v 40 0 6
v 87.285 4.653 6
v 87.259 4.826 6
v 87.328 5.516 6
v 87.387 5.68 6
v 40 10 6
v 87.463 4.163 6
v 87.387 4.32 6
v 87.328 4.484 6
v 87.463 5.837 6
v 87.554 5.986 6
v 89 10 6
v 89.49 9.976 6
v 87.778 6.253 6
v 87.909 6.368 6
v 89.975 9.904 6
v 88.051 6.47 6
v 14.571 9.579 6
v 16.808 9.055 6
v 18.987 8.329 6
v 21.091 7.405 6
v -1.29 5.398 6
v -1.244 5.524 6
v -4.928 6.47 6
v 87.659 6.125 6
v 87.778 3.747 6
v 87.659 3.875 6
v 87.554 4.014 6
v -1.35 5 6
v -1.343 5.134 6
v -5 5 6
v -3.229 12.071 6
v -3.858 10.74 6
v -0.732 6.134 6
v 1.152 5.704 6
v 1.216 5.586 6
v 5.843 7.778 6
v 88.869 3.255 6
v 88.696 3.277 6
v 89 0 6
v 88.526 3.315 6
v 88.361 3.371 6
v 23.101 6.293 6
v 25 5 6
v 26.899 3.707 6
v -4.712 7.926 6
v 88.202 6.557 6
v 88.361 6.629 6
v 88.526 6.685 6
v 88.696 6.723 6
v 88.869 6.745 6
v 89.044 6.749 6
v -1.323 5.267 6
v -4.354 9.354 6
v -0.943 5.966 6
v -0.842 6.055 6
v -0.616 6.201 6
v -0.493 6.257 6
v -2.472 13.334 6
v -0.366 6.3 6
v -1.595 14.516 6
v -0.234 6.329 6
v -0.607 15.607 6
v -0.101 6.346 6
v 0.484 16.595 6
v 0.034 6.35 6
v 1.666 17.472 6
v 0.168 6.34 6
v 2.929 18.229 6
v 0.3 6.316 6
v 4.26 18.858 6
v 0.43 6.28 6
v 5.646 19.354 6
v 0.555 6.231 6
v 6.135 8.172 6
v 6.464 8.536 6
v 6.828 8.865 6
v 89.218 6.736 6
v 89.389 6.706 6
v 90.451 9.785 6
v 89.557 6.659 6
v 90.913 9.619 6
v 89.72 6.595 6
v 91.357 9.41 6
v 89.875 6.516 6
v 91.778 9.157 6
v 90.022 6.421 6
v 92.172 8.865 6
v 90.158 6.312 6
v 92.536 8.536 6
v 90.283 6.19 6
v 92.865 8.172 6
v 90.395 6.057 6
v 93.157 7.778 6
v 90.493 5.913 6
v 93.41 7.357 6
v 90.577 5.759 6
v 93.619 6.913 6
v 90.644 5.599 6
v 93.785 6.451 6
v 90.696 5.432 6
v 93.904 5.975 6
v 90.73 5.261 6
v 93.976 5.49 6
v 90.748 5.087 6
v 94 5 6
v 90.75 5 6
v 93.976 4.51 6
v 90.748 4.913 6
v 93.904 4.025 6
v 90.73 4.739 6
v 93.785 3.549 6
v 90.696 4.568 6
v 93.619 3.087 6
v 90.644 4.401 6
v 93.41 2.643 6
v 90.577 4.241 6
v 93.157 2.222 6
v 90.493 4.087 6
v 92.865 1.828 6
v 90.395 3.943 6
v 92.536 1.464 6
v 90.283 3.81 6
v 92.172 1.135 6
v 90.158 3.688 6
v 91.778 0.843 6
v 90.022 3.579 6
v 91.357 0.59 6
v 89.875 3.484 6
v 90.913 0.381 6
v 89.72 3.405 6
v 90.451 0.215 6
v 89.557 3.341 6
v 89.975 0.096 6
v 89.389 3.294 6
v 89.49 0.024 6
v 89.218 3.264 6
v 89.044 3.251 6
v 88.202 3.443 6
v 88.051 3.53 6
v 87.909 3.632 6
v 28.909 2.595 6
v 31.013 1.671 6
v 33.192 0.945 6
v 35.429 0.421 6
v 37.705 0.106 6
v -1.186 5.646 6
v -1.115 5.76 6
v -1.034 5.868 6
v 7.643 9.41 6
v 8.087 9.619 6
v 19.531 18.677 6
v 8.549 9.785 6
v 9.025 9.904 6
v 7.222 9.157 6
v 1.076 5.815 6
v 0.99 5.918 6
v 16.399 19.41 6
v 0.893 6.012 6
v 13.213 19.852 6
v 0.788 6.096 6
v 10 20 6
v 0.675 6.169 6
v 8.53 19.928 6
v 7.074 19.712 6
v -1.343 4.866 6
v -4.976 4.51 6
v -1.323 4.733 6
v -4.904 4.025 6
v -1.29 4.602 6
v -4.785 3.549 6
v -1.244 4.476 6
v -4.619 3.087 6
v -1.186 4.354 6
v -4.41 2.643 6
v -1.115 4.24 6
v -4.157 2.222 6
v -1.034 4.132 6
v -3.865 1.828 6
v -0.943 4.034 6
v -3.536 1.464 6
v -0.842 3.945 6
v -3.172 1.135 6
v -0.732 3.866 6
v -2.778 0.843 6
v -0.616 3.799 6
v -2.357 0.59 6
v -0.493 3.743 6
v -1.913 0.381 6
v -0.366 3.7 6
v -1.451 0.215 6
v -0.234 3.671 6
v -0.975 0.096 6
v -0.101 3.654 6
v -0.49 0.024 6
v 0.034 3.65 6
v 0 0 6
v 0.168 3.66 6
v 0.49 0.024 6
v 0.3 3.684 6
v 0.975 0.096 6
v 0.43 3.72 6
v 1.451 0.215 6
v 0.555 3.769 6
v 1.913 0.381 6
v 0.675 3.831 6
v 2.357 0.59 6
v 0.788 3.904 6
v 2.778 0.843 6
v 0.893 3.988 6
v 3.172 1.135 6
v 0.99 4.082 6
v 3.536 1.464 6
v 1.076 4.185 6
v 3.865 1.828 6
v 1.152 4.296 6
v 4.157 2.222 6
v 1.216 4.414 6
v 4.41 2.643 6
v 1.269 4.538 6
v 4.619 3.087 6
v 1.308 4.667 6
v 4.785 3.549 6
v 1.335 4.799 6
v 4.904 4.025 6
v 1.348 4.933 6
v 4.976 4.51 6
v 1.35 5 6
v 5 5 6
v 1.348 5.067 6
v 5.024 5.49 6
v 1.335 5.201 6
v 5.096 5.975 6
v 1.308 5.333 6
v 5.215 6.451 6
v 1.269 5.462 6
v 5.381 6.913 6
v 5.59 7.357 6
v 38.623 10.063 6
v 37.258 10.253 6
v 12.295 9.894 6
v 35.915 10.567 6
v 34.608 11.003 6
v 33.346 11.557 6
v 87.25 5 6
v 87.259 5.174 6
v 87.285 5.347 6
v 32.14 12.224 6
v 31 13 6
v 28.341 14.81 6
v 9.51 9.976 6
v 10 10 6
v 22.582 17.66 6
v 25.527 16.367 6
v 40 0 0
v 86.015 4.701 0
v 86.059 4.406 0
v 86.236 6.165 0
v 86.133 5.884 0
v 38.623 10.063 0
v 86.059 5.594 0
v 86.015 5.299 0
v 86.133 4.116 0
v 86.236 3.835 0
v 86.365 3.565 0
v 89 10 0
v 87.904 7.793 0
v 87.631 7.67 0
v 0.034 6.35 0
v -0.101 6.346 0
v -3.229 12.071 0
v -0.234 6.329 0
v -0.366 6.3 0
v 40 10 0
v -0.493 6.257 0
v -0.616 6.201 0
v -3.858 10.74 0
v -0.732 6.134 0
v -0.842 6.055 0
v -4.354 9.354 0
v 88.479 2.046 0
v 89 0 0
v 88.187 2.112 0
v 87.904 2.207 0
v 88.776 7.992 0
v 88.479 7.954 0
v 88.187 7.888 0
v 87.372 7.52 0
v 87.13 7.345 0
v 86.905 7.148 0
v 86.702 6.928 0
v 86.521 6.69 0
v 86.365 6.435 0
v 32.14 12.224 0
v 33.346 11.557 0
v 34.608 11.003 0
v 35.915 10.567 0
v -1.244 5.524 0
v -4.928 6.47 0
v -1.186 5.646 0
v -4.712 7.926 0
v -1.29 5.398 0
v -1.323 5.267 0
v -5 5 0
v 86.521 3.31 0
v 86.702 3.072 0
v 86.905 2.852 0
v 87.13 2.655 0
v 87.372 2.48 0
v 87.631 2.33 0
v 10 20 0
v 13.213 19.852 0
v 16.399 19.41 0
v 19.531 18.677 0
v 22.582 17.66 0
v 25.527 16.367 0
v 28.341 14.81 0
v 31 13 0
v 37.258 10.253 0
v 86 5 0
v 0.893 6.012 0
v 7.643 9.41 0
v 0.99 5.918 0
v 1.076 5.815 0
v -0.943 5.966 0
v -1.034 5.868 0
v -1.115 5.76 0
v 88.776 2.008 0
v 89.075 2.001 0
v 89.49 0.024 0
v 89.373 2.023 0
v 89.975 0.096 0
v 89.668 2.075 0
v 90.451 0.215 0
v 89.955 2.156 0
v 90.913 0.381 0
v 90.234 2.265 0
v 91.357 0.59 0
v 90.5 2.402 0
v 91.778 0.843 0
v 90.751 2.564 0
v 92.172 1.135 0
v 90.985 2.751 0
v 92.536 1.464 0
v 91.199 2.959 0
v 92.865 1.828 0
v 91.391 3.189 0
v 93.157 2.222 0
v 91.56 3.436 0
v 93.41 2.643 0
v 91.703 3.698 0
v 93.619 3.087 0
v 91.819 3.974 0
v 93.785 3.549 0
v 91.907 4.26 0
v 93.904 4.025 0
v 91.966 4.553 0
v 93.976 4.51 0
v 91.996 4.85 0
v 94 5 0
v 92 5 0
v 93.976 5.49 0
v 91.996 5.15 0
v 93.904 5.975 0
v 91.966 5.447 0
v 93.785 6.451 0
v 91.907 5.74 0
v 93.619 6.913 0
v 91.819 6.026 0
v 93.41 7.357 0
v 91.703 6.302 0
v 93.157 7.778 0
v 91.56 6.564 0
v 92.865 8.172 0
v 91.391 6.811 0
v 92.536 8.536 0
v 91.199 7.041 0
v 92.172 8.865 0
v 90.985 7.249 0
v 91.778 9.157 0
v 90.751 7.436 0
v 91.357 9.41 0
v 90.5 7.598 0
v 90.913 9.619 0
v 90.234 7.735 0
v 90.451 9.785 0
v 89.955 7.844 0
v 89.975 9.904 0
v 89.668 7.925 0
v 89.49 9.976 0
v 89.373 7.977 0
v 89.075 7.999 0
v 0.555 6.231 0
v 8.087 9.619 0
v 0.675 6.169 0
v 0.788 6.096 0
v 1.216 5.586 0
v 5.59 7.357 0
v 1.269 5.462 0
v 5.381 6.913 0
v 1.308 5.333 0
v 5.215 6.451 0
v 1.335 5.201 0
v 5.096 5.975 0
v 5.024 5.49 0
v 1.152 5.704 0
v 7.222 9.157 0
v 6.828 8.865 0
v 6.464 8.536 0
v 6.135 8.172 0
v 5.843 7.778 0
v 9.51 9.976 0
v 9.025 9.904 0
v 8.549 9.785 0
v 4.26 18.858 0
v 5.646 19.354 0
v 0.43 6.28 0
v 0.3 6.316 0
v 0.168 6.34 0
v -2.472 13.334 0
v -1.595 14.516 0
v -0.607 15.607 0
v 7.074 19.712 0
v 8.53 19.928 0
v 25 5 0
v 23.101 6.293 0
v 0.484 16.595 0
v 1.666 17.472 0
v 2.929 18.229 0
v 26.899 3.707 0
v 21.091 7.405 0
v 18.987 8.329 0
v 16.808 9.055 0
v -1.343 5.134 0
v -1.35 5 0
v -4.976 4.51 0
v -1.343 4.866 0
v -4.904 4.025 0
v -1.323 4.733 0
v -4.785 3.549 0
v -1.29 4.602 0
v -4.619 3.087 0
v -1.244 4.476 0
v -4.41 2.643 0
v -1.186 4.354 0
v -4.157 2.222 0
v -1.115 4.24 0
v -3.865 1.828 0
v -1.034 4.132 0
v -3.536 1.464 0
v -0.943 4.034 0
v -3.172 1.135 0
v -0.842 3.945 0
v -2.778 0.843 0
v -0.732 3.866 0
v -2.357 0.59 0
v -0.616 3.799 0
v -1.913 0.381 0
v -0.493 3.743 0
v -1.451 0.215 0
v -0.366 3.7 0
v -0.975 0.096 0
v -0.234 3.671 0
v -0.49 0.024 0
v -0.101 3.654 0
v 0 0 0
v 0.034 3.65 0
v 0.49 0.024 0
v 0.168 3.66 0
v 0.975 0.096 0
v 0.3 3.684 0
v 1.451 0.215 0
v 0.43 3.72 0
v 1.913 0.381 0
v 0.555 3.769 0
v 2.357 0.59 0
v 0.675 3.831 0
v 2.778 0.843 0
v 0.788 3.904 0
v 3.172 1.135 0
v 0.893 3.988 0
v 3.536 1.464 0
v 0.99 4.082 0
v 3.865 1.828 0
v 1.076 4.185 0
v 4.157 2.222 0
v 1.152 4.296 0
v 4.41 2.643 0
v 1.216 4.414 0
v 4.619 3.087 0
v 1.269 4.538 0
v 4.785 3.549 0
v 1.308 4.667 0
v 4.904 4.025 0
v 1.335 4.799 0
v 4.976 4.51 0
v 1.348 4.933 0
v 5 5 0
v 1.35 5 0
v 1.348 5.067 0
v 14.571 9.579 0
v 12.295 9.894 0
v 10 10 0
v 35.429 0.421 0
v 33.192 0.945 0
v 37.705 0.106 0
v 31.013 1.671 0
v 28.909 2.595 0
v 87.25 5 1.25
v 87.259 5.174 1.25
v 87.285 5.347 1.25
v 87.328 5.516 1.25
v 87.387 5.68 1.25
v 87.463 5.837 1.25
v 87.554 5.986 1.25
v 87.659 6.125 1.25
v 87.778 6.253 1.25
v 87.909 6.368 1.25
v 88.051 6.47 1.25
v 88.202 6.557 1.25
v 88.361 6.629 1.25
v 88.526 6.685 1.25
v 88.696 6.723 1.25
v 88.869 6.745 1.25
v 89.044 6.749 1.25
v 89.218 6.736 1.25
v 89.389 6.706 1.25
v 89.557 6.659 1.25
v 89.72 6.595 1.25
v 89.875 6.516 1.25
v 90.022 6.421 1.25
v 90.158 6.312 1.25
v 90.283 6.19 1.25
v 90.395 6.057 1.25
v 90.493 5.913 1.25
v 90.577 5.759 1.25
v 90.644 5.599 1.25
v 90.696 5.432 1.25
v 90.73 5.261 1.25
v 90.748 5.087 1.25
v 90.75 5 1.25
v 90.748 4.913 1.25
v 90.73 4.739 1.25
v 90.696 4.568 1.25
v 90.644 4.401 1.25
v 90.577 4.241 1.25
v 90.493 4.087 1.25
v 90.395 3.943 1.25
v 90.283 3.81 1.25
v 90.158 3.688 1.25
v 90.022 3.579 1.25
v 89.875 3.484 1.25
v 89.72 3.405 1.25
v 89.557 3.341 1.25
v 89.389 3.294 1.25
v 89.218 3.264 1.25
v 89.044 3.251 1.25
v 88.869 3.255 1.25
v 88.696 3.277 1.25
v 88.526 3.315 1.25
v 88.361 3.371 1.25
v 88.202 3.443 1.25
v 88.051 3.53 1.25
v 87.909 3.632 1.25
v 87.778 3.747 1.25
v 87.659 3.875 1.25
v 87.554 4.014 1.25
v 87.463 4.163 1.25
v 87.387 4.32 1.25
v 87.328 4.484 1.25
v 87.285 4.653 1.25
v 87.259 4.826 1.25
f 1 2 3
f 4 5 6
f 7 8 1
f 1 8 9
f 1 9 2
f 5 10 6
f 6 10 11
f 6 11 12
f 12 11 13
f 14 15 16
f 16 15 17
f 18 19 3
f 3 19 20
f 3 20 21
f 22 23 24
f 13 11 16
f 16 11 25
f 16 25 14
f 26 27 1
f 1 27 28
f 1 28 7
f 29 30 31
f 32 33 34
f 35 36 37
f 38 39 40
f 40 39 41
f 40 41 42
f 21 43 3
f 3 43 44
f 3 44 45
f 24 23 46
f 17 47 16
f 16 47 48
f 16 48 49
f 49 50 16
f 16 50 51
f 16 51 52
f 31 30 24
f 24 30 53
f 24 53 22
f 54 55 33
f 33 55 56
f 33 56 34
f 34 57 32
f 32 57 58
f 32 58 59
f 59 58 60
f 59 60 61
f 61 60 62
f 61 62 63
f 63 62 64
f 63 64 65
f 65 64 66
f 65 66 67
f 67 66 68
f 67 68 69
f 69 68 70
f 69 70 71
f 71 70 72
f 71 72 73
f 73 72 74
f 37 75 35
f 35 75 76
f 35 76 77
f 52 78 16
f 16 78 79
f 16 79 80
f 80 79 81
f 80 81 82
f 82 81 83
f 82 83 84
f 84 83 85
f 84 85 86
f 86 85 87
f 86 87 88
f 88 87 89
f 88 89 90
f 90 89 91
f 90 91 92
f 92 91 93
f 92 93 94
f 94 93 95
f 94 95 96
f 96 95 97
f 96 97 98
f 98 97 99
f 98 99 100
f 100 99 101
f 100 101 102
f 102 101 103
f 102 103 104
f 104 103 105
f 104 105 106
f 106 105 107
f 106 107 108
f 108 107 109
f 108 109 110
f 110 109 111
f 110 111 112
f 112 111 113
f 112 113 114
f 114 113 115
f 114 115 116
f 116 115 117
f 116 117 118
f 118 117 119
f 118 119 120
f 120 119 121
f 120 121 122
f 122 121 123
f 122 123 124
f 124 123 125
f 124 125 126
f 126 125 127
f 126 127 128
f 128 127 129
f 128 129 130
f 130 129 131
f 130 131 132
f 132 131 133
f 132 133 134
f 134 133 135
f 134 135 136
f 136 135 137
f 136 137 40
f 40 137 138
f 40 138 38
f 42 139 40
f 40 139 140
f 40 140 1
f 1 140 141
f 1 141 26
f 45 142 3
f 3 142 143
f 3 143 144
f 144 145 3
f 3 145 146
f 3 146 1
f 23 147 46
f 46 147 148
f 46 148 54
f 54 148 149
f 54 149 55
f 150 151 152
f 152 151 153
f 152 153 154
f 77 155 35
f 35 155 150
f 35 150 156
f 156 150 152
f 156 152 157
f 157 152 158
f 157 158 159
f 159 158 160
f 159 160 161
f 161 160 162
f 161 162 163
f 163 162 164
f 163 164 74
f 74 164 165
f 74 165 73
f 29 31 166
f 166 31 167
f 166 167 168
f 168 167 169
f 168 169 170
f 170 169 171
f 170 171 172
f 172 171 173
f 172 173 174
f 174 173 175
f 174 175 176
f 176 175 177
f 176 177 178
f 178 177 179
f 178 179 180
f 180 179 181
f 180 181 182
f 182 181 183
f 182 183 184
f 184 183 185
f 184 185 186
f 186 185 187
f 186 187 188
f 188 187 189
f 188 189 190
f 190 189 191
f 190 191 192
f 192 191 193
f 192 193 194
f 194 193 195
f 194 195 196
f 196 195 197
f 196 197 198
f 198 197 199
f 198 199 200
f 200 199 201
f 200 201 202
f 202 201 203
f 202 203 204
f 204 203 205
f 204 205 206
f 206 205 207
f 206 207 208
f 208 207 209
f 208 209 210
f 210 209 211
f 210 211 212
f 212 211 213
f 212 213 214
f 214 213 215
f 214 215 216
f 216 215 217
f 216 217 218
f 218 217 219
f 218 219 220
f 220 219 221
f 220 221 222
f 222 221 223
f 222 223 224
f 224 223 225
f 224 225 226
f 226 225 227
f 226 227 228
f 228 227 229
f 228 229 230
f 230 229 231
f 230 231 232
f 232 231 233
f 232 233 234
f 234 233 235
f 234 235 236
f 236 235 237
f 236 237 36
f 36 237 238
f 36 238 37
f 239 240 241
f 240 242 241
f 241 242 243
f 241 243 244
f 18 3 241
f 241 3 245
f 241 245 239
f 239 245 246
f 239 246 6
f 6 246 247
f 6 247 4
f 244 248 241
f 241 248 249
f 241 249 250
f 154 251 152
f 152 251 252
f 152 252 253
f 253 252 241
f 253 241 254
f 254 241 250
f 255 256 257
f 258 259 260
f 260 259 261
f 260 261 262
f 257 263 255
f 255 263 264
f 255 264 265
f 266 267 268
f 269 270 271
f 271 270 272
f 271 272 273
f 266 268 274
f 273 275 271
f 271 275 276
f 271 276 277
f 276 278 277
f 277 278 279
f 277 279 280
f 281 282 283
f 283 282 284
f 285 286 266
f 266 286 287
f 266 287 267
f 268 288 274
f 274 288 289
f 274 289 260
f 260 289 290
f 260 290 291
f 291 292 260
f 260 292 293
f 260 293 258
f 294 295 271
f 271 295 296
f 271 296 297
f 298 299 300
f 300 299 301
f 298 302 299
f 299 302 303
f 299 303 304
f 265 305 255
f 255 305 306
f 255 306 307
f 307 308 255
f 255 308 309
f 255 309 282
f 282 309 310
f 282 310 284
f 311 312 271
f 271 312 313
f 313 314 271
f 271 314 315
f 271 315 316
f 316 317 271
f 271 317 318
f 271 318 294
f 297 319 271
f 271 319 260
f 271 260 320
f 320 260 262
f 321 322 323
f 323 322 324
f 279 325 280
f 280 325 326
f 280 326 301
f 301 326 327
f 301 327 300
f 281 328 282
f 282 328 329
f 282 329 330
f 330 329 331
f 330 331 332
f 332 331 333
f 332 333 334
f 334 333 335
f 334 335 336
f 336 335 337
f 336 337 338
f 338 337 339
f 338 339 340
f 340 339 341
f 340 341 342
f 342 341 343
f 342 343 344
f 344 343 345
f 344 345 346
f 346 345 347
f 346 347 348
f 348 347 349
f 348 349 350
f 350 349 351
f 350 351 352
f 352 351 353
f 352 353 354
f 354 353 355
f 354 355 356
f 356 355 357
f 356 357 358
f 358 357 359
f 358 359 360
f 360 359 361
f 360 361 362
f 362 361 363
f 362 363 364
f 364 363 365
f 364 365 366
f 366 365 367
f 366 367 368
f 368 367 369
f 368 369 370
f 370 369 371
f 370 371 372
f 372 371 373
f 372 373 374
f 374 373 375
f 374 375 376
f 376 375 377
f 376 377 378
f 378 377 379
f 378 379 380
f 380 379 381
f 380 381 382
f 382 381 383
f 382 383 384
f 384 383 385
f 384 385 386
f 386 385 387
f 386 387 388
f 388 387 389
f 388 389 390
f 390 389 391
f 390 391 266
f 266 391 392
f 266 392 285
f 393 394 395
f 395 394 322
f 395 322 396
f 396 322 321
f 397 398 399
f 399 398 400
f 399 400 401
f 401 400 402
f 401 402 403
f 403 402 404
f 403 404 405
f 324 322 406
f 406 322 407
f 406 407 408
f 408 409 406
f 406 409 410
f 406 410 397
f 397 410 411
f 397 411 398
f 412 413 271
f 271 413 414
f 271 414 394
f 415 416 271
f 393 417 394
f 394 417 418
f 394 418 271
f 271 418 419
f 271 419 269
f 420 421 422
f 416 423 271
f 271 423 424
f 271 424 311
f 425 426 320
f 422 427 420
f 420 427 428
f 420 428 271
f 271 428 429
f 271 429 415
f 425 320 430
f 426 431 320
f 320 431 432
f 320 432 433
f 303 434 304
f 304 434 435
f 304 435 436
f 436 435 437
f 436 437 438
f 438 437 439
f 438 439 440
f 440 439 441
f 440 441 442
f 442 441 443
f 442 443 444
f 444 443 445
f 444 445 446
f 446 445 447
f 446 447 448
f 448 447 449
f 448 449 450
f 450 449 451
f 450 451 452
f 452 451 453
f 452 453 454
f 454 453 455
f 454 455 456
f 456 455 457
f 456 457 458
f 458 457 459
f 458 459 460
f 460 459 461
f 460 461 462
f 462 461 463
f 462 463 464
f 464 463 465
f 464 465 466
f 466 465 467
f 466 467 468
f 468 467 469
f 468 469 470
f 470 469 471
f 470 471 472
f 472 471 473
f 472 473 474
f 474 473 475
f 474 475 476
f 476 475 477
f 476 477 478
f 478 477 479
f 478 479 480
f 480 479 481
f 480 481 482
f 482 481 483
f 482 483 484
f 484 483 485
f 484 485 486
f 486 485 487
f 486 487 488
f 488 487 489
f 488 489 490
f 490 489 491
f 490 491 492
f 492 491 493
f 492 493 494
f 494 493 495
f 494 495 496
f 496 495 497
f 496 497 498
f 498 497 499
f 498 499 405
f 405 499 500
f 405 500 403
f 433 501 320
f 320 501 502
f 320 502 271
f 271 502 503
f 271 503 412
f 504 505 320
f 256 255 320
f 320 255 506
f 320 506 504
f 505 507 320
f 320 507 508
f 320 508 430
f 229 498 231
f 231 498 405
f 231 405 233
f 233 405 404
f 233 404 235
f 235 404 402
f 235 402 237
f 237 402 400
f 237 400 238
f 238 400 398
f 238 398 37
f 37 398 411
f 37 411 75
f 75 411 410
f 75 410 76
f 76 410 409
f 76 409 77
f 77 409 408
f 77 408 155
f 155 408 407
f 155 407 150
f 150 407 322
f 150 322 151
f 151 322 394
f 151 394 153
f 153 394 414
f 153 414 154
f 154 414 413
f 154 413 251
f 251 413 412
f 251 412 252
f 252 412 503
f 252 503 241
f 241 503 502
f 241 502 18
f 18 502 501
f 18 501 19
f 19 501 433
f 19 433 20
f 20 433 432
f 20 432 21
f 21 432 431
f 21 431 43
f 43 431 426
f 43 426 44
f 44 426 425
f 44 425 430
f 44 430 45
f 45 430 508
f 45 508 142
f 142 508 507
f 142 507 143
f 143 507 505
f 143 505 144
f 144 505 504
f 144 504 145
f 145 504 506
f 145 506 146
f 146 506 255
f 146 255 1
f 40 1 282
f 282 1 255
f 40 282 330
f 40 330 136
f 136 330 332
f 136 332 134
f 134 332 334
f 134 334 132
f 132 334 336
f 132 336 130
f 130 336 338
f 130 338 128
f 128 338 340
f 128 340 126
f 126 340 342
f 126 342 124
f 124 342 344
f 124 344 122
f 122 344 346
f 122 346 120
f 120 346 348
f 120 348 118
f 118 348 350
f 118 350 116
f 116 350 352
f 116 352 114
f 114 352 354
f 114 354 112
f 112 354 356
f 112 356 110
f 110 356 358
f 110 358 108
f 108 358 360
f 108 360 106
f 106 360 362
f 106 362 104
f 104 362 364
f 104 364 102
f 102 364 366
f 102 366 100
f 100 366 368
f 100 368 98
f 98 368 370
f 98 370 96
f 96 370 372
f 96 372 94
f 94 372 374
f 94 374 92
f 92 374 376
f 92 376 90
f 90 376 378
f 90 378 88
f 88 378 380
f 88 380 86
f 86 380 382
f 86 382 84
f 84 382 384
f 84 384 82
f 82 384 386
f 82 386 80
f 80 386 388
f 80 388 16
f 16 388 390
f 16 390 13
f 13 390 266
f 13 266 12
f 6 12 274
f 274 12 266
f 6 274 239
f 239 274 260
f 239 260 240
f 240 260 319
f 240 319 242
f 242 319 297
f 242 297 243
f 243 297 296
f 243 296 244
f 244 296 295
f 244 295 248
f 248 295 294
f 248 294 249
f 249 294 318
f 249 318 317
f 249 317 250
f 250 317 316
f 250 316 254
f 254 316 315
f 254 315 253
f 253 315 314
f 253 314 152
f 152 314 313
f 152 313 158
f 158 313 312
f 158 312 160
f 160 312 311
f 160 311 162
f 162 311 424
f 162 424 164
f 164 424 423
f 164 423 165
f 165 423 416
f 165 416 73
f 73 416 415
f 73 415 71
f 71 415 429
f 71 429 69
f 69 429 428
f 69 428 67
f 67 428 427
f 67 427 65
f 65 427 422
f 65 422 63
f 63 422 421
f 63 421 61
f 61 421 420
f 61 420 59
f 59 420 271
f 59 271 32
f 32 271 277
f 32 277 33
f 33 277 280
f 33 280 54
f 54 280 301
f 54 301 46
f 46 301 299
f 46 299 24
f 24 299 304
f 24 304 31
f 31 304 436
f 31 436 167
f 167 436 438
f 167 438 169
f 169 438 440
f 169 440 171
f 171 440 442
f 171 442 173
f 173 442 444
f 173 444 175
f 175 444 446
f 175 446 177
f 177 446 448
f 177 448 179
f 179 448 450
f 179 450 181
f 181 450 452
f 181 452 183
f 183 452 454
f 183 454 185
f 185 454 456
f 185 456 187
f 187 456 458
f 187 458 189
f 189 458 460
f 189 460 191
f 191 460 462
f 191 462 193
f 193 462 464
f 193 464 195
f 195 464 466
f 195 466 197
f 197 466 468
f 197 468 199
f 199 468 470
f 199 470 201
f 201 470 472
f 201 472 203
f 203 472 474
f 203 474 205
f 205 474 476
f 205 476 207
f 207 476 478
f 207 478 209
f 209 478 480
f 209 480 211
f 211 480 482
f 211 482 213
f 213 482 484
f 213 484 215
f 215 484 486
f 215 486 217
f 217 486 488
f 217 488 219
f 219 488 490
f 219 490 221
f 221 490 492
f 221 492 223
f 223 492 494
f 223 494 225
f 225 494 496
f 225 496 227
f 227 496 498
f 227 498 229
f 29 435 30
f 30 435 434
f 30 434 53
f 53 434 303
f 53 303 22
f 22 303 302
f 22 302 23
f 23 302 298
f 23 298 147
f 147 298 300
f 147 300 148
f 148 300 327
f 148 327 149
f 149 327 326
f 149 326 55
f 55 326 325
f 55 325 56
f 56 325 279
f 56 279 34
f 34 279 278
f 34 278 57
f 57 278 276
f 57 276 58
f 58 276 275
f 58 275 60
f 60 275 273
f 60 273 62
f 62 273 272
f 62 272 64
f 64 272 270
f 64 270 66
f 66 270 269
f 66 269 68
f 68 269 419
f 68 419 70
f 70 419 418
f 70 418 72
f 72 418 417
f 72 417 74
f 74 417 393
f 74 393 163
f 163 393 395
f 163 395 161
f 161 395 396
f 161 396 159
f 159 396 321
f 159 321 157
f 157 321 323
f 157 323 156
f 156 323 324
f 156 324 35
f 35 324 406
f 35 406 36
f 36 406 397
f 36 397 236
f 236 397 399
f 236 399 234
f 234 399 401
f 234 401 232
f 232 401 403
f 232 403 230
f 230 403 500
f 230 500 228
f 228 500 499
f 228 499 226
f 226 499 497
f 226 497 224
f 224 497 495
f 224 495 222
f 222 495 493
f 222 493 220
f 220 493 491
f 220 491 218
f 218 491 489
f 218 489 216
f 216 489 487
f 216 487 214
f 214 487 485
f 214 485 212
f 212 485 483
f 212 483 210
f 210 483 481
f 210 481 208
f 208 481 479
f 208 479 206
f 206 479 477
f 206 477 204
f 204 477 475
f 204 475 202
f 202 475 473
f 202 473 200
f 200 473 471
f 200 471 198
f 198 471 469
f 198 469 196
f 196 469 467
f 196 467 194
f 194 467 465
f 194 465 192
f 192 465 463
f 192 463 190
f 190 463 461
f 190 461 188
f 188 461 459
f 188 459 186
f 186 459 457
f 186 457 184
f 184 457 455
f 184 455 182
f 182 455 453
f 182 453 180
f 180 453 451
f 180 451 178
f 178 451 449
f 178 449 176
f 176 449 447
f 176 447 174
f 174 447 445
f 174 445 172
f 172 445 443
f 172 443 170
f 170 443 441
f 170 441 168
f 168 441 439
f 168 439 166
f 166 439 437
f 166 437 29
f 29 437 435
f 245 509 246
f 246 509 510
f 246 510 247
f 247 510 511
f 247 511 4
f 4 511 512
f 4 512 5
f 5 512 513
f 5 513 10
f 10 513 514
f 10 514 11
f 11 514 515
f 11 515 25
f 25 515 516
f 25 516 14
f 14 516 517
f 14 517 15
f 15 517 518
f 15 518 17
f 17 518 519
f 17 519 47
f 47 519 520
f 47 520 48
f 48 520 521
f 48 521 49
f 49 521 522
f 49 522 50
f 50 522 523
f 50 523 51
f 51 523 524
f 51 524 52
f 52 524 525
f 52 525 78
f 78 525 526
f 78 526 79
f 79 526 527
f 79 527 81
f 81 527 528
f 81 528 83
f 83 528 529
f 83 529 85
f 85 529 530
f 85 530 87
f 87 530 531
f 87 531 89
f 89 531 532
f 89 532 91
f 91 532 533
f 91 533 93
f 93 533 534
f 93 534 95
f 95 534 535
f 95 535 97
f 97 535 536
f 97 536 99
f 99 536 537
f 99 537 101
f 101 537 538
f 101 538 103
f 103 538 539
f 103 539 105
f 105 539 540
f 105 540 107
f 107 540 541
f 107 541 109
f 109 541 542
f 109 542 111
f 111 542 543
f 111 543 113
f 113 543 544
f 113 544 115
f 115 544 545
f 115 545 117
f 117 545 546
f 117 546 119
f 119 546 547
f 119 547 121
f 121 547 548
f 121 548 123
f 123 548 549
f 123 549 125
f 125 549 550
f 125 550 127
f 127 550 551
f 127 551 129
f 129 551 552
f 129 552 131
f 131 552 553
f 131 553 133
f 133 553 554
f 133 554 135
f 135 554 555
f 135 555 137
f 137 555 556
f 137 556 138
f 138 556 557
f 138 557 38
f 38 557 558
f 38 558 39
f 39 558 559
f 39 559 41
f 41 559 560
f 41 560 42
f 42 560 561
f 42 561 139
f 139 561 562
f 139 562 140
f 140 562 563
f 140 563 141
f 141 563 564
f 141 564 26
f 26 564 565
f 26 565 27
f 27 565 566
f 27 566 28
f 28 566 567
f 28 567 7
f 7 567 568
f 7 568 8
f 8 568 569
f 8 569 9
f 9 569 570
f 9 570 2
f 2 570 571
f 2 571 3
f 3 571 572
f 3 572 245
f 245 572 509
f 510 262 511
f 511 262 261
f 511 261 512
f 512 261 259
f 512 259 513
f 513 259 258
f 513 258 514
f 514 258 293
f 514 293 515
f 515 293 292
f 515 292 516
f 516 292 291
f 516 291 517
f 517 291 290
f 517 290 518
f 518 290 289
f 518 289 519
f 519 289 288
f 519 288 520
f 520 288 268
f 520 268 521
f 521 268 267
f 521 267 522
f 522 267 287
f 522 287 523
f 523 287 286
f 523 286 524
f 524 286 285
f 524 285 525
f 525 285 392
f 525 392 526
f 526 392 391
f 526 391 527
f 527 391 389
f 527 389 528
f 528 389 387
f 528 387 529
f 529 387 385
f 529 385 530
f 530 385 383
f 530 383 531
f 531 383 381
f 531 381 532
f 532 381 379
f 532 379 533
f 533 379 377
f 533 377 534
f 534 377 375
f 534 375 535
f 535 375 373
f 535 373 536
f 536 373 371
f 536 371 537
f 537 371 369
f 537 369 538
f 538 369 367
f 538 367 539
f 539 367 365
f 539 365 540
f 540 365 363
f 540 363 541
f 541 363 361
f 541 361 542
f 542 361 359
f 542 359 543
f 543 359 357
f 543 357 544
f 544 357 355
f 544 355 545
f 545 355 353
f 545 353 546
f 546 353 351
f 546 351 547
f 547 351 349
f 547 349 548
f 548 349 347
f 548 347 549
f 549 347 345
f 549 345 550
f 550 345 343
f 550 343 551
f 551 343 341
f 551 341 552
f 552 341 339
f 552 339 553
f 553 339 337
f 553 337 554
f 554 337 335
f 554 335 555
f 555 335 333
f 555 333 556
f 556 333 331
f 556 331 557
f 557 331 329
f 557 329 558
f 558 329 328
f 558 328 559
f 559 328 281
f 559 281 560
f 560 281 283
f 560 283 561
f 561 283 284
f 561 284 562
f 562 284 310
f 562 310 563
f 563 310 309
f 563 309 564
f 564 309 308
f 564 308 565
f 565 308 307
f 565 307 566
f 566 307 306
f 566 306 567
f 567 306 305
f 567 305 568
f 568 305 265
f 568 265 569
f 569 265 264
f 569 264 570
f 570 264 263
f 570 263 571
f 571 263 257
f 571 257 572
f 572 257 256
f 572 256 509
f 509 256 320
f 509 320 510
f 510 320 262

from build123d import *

# Parameters (mm, degrees)
ESQUISSE1_R        = 1.35
ESQUISSE1_R_2      = 1.75
BOSS_EXTRU_1_DEPTH = 6
CHANFREIN1_SIZE    = 1.25


with BuildPart() as part:
    # Esquisse1 → Boss.-Extru.1 (new body)
    with BuildSketch(Plane.XY):
        with BuildLine():
            Line((40, 10), (89, 10))
            ThreePointArc((89, 10), (94, 5), (89, 0))
            Line((89, 0), (40, 0))
            ThreePointArc((40, 0), (32.09430585, 1.282917549), (25, 5))
            ThreePointArc((25, 5), (17.90569415, 8.717082451), (10, 10))
            ThreePointArc((10, 10), (6.464466094, 8.535533906), (5, 5))
            ThreePointArc((5, 5), (3.535533906, 1.464466094), (0, 0))
            ThreePointArc((0, 0), (-3.535533906, 1.464466094), (-5, 5))
            ThreePointArc((-5, 5), (-0.606601718, 15.606601718), (10, 20))
            ThreePointArc((10, 20), (21.067971811, 18.203915432), (31, 13))
            ThreePointArc((31, 13), (35.25658351, 10.769750529), (40, 10))
        make_face()
        with Locations((0, 5)):
            Circle(ESQUISSE1_R, mode=Mode.SUBTRACT)
        with Locations((89, 5)):
            Circle(ESQUISSE1_R_2, mode=Mode.SUBTRACT)
    extrude(amount=BOSS_EXTRU_1_DEPTH)

    # Chanfrein1
    chanfrein1_edges = [part.edges().sort_by_distance(p)[0] for p in [
        (87.25, 5, 0),
    ]]
    chamfer(chanfrein1_edges, length=CHANFREIN1_SIZE)


solid = part.part
